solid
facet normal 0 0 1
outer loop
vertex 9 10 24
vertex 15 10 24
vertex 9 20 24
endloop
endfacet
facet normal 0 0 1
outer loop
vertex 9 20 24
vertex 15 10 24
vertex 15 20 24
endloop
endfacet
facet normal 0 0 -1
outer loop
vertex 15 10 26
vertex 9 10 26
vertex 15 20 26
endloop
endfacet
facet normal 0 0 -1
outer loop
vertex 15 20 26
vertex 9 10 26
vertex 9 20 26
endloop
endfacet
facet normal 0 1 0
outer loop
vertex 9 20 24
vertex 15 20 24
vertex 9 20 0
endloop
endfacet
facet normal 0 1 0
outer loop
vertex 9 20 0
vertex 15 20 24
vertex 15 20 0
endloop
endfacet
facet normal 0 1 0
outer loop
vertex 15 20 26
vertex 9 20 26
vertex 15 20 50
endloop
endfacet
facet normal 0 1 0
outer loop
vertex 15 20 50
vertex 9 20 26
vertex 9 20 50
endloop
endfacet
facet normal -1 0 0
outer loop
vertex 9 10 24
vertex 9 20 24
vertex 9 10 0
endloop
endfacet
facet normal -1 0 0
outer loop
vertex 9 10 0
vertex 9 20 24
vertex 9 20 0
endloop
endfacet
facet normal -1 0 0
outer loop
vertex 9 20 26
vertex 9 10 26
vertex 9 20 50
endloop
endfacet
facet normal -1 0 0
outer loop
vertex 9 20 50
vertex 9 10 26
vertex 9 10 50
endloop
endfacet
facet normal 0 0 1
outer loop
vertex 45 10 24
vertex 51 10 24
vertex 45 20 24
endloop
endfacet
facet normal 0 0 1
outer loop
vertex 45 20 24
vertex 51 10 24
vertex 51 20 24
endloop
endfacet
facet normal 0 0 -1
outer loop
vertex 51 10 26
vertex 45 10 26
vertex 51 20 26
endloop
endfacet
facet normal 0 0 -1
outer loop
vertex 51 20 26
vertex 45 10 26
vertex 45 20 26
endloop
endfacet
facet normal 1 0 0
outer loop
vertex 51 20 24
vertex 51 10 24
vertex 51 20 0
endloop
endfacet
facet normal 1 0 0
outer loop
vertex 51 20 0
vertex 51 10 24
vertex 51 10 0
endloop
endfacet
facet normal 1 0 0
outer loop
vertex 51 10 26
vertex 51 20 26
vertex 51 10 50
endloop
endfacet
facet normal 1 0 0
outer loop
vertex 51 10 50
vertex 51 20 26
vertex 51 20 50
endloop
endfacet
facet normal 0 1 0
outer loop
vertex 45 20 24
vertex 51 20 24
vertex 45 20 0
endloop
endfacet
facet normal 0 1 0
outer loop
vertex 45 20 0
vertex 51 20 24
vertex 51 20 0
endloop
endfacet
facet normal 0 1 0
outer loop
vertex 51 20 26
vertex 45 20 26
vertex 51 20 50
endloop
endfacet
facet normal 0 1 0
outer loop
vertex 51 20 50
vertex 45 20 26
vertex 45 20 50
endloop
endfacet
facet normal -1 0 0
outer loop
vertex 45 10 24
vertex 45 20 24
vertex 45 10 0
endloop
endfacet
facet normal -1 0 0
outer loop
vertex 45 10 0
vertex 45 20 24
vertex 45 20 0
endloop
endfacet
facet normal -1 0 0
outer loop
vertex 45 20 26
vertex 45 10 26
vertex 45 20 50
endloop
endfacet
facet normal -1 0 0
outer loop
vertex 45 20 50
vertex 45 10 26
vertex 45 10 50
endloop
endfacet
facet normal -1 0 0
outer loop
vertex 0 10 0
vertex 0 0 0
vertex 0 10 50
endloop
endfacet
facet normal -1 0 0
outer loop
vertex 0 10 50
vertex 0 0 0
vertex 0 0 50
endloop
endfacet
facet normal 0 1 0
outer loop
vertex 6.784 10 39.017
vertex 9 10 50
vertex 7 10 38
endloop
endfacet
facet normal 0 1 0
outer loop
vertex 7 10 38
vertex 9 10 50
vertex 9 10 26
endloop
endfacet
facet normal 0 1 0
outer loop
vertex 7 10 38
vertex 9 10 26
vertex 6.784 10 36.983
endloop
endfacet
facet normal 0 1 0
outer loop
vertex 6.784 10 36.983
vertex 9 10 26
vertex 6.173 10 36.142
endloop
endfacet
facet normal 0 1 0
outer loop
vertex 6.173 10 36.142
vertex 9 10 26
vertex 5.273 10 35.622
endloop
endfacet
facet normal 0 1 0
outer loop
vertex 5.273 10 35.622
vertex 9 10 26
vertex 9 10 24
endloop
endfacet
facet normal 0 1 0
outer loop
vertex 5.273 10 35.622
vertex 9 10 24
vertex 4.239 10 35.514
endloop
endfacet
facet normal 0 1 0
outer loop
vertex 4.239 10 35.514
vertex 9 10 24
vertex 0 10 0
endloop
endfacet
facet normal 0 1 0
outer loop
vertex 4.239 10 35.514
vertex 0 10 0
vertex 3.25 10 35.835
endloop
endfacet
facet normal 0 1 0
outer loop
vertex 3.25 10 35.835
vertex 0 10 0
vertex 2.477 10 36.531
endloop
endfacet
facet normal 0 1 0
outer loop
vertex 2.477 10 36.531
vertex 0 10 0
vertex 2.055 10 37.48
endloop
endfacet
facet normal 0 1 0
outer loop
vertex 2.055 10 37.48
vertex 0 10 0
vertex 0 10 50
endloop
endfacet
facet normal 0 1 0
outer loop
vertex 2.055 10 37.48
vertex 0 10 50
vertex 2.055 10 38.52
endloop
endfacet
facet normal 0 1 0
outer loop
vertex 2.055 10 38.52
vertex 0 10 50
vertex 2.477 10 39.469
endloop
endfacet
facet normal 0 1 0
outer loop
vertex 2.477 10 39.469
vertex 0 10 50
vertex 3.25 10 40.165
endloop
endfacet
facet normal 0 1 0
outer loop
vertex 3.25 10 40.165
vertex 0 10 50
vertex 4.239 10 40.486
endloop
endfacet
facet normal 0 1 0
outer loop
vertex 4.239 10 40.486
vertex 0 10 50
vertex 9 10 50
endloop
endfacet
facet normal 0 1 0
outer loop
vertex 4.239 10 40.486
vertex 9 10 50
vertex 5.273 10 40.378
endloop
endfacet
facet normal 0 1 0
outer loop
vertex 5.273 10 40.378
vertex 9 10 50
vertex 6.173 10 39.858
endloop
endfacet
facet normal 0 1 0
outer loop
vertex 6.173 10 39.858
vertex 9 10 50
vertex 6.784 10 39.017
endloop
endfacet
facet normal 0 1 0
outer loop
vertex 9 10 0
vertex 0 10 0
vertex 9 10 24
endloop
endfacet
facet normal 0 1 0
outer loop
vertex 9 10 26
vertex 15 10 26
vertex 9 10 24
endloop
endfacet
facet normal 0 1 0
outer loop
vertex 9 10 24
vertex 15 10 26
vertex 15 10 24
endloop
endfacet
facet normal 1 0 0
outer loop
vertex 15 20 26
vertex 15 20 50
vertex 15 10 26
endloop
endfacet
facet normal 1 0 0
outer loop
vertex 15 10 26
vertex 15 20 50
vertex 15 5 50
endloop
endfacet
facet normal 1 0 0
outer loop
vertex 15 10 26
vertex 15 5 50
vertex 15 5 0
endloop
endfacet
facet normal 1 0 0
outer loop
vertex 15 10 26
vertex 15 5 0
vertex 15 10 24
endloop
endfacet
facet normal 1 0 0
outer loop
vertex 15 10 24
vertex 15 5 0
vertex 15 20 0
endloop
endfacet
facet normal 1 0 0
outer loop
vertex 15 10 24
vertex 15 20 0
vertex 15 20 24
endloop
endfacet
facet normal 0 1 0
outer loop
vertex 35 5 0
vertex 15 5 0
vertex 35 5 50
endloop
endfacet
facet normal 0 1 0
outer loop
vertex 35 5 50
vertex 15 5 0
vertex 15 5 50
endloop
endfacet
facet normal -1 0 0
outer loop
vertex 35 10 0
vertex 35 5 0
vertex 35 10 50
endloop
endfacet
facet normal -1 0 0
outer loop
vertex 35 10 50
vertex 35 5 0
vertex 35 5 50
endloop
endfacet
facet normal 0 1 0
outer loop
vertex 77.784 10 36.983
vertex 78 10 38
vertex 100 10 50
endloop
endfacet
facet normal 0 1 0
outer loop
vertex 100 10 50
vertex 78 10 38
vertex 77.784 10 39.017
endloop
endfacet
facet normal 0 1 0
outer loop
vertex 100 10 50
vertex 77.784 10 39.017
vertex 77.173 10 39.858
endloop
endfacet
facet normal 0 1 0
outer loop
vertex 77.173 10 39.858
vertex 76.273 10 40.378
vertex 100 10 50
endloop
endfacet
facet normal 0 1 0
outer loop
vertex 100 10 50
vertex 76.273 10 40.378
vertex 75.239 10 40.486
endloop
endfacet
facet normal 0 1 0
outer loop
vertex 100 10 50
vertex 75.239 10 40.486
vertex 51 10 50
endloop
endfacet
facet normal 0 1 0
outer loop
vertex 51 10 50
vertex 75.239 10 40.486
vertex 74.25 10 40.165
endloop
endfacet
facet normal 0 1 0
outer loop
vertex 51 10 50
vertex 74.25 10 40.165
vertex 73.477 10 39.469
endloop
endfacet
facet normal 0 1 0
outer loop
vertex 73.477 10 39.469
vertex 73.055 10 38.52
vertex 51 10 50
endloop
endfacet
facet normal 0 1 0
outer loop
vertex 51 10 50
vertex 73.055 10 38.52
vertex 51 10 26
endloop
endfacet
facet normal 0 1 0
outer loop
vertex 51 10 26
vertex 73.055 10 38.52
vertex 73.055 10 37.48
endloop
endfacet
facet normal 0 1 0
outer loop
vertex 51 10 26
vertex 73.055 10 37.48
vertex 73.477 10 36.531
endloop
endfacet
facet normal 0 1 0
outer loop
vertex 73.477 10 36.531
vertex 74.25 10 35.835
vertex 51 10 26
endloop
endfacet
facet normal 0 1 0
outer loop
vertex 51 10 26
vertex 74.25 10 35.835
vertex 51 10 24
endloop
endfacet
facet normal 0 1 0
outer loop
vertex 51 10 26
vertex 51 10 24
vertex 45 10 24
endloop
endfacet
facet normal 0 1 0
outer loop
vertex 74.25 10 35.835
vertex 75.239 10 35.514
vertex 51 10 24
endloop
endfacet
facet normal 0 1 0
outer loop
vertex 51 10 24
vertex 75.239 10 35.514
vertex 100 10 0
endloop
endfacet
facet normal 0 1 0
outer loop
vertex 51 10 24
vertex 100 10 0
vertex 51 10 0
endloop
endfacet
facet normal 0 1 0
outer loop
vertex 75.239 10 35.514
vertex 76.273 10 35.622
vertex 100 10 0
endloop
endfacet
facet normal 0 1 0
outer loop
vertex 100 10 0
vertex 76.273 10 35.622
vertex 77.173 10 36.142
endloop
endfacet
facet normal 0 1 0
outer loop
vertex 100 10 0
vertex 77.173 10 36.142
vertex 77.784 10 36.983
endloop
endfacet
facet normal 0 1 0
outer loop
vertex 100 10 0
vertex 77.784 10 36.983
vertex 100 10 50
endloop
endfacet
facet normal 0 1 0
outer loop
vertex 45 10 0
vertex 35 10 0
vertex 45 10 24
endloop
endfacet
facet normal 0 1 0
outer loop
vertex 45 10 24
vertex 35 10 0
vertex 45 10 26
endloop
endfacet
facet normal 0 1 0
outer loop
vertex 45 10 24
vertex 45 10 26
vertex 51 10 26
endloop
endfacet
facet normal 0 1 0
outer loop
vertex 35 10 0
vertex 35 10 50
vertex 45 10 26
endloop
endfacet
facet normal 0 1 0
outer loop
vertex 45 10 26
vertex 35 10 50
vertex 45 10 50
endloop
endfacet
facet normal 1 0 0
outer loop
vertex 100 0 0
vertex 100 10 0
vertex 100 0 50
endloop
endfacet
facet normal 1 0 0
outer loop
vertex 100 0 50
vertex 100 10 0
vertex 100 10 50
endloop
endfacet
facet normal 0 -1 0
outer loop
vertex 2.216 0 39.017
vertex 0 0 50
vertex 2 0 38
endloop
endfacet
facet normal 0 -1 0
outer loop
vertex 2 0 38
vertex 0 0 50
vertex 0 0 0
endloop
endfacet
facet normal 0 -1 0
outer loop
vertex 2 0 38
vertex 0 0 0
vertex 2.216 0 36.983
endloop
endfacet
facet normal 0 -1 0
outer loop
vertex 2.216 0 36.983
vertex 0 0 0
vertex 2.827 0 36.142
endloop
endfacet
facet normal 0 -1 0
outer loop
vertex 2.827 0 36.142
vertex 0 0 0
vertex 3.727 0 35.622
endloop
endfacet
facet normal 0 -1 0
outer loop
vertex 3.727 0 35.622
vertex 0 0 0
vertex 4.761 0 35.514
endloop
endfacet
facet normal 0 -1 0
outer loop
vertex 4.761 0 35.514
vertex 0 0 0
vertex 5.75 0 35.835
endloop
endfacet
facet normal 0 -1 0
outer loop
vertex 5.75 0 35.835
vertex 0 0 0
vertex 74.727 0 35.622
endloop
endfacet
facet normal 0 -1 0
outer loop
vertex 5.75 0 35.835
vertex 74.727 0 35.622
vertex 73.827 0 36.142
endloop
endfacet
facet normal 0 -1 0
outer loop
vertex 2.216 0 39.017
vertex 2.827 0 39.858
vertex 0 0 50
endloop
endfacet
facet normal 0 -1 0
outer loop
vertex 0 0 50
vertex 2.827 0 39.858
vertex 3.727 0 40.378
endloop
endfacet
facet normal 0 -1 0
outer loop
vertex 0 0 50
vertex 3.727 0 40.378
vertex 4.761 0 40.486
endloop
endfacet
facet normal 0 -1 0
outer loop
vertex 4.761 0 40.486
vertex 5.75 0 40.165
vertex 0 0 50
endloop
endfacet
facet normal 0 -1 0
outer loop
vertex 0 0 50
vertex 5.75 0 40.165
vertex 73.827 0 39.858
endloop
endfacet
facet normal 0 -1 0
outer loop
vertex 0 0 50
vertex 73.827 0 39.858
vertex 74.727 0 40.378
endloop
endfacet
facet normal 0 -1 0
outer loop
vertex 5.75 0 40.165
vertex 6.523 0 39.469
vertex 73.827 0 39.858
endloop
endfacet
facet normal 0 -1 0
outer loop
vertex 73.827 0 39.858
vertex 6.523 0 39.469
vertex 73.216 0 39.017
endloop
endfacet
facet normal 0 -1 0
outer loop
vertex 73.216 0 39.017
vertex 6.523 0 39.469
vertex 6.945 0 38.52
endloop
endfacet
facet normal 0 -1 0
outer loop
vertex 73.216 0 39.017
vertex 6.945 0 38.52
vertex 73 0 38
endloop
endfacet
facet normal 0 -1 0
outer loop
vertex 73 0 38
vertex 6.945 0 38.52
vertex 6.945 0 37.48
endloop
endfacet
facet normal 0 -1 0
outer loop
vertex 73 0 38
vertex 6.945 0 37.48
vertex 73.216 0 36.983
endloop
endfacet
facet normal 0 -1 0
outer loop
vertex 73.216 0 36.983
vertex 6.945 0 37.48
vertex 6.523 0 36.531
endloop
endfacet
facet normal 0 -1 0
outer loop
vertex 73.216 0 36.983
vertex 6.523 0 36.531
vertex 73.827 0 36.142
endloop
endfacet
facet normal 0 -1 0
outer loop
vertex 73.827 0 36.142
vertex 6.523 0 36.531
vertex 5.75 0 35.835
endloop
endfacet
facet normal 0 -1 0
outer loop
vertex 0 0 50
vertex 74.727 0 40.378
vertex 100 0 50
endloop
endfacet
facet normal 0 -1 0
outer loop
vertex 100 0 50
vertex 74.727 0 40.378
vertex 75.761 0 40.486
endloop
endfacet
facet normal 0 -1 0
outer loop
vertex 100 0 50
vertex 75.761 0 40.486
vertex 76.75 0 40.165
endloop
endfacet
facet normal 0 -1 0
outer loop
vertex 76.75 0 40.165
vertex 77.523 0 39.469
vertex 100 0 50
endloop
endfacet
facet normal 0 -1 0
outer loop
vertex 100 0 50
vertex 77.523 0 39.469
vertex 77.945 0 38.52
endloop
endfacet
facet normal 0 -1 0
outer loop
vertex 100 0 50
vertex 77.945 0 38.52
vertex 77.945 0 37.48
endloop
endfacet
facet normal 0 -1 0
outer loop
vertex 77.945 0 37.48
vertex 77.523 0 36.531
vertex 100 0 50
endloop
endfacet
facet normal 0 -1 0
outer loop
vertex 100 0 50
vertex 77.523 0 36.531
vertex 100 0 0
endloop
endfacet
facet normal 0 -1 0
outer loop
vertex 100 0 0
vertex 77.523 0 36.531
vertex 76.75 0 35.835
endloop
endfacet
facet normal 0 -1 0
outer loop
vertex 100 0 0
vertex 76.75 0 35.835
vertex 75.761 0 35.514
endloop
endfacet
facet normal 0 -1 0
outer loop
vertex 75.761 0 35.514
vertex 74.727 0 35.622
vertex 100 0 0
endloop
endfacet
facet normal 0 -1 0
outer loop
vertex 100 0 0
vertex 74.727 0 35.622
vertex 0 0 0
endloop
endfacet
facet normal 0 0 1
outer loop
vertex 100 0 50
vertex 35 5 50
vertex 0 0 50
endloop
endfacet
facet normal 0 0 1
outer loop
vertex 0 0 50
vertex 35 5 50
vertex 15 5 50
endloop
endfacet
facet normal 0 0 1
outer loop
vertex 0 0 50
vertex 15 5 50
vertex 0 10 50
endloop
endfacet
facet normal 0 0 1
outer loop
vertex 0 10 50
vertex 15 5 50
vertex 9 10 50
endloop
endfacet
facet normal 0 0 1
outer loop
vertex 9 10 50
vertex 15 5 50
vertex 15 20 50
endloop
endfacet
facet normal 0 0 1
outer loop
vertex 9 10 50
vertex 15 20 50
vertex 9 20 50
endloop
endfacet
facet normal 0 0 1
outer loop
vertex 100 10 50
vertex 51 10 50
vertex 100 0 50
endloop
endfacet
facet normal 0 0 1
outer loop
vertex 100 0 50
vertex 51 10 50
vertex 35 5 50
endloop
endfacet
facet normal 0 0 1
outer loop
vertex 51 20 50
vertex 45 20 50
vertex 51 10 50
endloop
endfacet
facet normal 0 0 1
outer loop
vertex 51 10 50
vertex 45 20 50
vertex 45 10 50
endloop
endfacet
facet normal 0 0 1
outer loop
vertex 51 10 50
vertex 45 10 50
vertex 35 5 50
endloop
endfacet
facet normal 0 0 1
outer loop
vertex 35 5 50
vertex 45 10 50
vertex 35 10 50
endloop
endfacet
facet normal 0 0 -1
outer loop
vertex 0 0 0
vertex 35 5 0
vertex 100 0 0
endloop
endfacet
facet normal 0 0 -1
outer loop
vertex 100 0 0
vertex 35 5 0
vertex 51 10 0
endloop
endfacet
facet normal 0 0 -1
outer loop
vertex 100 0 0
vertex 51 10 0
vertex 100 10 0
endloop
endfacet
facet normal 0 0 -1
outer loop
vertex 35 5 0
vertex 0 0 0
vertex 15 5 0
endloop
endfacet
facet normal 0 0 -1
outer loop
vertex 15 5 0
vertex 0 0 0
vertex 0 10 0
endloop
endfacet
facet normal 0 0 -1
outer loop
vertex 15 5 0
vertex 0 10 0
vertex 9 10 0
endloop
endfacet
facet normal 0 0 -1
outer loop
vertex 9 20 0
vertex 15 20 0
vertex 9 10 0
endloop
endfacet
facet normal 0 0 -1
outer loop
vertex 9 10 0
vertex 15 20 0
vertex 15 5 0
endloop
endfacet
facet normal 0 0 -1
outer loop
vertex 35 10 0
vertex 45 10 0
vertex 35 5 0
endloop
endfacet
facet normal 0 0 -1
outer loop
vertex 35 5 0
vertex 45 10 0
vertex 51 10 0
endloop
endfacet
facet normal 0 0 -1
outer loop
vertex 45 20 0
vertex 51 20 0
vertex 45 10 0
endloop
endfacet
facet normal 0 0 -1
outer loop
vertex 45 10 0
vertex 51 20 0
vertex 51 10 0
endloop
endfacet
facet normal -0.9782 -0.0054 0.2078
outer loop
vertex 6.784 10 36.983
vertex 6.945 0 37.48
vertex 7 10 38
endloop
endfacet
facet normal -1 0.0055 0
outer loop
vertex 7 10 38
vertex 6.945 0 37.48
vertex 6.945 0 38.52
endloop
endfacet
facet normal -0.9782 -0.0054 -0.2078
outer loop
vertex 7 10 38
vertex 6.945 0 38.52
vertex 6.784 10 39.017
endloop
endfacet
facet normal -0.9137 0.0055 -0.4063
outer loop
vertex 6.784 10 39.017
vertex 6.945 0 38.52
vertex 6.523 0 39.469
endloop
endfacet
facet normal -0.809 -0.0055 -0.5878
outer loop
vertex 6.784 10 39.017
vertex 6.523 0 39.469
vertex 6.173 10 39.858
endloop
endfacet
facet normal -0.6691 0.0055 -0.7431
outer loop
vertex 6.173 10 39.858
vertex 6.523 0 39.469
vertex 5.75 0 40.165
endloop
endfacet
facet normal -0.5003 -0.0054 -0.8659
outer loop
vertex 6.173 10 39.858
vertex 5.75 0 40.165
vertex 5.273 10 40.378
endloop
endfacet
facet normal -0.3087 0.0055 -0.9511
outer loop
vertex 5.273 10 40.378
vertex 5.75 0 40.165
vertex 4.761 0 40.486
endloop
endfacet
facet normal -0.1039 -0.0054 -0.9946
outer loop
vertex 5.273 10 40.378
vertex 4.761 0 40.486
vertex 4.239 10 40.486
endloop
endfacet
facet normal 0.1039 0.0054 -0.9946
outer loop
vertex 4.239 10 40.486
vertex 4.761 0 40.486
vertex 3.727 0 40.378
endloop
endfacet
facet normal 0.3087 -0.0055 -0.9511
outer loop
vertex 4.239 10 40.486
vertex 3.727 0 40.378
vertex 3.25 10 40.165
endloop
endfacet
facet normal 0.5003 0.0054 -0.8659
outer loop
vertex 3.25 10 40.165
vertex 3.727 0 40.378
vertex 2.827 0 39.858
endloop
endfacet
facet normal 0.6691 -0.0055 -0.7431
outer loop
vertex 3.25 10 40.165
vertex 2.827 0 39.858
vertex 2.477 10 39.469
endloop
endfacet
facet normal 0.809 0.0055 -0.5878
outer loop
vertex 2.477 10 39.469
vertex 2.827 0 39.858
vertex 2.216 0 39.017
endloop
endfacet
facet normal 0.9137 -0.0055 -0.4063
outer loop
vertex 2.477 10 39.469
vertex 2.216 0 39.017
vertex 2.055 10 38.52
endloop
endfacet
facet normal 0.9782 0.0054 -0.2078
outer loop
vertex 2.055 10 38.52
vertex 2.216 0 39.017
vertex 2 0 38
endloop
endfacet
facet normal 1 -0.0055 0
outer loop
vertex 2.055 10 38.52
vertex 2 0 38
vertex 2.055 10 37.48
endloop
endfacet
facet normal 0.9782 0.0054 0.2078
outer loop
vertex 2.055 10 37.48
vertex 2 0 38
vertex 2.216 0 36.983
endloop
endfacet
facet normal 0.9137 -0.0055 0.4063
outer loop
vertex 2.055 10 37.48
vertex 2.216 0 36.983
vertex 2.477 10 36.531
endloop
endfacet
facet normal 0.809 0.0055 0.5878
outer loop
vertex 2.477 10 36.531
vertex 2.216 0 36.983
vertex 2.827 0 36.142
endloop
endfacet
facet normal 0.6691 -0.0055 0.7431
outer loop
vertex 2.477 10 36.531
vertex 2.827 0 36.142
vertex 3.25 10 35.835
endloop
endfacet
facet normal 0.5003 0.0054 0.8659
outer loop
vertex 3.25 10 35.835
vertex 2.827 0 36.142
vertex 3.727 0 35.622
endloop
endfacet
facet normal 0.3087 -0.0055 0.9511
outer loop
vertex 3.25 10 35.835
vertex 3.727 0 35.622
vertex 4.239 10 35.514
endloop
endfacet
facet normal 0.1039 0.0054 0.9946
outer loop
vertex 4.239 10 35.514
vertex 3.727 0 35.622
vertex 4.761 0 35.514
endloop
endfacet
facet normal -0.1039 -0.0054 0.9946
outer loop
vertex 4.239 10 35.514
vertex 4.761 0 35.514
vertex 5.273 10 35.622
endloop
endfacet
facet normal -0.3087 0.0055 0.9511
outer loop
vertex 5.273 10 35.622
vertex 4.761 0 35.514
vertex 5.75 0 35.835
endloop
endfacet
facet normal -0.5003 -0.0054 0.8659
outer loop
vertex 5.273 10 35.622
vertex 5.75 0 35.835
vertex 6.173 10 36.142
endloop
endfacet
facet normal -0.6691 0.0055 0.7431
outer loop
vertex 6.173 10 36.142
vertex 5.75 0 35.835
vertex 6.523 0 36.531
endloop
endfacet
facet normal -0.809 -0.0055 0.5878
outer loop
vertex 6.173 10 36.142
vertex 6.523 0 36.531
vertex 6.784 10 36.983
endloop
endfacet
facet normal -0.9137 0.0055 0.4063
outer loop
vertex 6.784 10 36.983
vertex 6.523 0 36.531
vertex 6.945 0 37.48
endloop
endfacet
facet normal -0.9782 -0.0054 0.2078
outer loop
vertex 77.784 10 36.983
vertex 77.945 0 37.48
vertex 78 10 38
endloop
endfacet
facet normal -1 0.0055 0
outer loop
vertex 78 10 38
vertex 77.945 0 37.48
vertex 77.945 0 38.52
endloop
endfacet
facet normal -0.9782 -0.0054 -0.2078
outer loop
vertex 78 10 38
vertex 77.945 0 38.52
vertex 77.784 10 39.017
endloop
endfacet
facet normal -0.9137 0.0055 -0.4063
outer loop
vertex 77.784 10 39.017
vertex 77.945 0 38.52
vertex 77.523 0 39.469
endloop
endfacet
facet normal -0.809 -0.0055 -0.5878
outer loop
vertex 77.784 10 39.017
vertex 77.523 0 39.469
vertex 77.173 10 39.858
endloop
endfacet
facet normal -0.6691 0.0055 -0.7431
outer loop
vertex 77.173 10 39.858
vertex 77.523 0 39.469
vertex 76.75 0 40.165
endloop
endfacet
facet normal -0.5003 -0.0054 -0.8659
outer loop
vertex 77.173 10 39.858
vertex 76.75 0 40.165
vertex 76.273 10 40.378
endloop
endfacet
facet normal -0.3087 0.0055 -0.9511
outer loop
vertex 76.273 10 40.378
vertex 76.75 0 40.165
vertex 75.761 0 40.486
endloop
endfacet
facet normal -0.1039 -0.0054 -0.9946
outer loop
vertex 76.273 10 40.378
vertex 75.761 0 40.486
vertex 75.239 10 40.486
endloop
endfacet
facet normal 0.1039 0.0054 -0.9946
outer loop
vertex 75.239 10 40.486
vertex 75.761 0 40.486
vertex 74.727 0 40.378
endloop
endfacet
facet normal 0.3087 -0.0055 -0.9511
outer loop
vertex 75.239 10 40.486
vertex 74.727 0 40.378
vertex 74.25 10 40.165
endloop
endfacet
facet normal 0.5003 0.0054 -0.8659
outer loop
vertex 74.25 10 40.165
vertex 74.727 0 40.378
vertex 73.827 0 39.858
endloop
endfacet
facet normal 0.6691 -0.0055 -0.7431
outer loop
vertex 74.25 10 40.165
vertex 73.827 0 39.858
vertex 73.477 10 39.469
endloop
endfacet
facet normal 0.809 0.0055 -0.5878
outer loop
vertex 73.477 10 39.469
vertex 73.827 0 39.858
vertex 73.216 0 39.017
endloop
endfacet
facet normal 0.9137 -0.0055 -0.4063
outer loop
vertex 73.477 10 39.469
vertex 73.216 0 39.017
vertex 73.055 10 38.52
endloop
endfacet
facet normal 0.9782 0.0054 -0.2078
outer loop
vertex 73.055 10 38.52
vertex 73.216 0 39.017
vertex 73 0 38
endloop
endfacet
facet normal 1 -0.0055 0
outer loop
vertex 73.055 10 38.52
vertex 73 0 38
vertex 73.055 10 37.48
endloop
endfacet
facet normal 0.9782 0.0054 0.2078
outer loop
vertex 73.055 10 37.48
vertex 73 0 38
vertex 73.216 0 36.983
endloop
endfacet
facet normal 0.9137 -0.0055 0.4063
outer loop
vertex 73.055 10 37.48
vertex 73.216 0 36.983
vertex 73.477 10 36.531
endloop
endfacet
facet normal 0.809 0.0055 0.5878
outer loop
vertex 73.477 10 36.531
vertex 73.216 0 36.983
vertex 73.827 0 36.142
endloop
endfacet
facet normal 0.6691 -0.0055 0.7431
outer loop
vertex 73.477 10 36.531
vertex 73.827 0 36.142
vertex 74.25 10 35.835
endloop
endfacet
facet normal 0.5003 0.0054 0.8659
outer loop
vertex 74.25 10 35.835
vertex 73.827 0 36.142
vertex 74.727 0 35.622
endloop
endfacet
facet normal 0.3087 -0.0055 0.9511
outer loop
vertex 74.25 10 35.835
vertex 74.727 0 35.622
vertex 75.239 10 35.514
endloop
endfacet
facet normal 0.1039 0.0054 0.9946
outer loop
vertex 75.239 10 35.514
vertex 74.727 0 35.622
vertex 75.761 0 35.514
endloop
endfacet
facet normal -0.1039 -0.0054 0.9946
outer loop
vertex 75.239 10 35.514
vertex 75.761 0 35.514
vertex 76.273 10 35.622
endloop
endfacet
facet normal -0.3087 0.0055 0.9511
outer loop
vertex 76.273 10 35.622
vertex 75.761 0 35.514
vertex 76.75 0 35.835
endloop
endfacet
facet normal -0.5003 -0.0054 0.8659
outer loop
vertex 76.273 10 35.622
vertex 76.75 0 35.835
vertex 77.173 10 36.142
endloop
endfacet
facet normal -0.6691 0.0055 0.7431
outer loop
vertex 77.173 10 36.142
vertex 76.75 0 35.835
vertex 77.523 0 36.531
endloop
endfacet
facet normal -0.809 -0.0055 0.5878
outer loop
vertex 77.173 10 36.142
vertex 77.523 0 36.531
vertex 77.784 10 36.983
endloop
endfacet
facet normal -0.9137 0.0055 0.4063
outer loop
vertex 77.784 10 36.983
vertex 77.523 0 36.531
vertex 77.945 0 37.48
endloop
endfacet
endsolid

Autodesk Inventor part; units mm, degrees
sketch "草圖1" plane through (0, 0, 0) normal (0, 0, 1) x (1, 0, 0)
  line L0 (0, 0) -> (100, 0)
  line L1 (100, 0) -> (100, 10)
  line L2 (0, 0) -> (0, 10)
  line L3 (0, 10) -> (9, 10)
  line L4 (9, 10) -> (9, 20)
  line L5 (9, 20) -> (15, 20)
  line L6 (15, 20) -> (15, 10)
  line L7 (15, 10) -> (15, 10)
  line L8 (15, 10) -> (15, 5)
  line L9 (15, 5) -> (35, 5)
  line L10 (35, 5) -> (35, 10)
  line L11 (35, 10) -> (45, 10)
  line L12 (45, 10) -> (45, 20)
  line L13 (45, 20) -> (51, 20)
  line L14 (51, 20) -> (51, 10)
  line L15 (51, 10) -> (100, 10)
  dimension "d0" = 100
  dimension "d1" = 10
  dimension "d2" = 10
  dimension "d3" = 9
  dimension "d4" = 10
  dimension "d5" = 6
  dimension "d9" = 5
  dimension "d11" = 20
  dimension "d12" = 10
  dimension "d13" = 6
extrude "擠出1" add sketch "草圖1" along normal blind 50
sketch "草圖2" plane through (9, 20, 0) normal (0, 1, 0) x (1, 0, 0)
  line L0 (0, 0) -> (0, -50) projected
  line L1 (0, -50) -> (0, -26)
  line L2 (6, -26) -> (6, -24)
  line L3 (0, -26) -> (0, -24)
  line L4 (36, 0) -> (36, -50) projected
  line L5 (36, -50) -> (36, -26)
  line L6 (36, -26) -> (42, -26)
  line L7 (42, -26) -> (42, -24)
  line L8 (42, -24) -> (36, -24)
  line L9 (36, -26) -> (36, -24)
  line L10 (0, -26) -> (6, -26)
  line L11 (6, -24) -> (0, -24)
  line L12 (0, -26) -> (0, -24)
  point P0 (-9, 0)
  dimension "d16" = 24
  dimension "d17" = 2
  dimension "d18" = 24
  dimension "d19" = 6
  dimension "d22" = 6
  dimension "d27" = 2
extrude "擠出2" cut sketch "草圖2" against normal up to surface (10 mm away) contours L8 L7 L6 L4
extrude "擠出3" cut sketch "草圖2" against normal up to surface (10 mm away) contours L11 L2 L10 L0
sketch "草圖4" plane through (0, 0, 0) normal (0, 1, 0) x (-1, 0, 0)
  line L0 (0, 50) -> (-100, 50) projected
  line L1 (-100, 50) -> (-100, 38)
  line L2 (-100, 0) -> (-100, 50) projected
  line L3 (-100, 38) -> (-75.5, 38)
  line L4 (-51, 26) -> (-51, 50) projected
  line L5 (0, 50) -> (0, 38)
  line L6 (0, 0) -> (0, 50) projected
  line L7 (0, 38) -> (-4.5, 38)
  dimension "d56" = 12
  dimension "d57" = 24.5
  dimension "d58" = 12
  dimension "d59" = 4.5
hole "孔3" at (75.5, 0, 38) at (4.5, 0, 38) direction (0, 1, 0) diameter 5 end through all
properties part number "wire_setbaseV2"
